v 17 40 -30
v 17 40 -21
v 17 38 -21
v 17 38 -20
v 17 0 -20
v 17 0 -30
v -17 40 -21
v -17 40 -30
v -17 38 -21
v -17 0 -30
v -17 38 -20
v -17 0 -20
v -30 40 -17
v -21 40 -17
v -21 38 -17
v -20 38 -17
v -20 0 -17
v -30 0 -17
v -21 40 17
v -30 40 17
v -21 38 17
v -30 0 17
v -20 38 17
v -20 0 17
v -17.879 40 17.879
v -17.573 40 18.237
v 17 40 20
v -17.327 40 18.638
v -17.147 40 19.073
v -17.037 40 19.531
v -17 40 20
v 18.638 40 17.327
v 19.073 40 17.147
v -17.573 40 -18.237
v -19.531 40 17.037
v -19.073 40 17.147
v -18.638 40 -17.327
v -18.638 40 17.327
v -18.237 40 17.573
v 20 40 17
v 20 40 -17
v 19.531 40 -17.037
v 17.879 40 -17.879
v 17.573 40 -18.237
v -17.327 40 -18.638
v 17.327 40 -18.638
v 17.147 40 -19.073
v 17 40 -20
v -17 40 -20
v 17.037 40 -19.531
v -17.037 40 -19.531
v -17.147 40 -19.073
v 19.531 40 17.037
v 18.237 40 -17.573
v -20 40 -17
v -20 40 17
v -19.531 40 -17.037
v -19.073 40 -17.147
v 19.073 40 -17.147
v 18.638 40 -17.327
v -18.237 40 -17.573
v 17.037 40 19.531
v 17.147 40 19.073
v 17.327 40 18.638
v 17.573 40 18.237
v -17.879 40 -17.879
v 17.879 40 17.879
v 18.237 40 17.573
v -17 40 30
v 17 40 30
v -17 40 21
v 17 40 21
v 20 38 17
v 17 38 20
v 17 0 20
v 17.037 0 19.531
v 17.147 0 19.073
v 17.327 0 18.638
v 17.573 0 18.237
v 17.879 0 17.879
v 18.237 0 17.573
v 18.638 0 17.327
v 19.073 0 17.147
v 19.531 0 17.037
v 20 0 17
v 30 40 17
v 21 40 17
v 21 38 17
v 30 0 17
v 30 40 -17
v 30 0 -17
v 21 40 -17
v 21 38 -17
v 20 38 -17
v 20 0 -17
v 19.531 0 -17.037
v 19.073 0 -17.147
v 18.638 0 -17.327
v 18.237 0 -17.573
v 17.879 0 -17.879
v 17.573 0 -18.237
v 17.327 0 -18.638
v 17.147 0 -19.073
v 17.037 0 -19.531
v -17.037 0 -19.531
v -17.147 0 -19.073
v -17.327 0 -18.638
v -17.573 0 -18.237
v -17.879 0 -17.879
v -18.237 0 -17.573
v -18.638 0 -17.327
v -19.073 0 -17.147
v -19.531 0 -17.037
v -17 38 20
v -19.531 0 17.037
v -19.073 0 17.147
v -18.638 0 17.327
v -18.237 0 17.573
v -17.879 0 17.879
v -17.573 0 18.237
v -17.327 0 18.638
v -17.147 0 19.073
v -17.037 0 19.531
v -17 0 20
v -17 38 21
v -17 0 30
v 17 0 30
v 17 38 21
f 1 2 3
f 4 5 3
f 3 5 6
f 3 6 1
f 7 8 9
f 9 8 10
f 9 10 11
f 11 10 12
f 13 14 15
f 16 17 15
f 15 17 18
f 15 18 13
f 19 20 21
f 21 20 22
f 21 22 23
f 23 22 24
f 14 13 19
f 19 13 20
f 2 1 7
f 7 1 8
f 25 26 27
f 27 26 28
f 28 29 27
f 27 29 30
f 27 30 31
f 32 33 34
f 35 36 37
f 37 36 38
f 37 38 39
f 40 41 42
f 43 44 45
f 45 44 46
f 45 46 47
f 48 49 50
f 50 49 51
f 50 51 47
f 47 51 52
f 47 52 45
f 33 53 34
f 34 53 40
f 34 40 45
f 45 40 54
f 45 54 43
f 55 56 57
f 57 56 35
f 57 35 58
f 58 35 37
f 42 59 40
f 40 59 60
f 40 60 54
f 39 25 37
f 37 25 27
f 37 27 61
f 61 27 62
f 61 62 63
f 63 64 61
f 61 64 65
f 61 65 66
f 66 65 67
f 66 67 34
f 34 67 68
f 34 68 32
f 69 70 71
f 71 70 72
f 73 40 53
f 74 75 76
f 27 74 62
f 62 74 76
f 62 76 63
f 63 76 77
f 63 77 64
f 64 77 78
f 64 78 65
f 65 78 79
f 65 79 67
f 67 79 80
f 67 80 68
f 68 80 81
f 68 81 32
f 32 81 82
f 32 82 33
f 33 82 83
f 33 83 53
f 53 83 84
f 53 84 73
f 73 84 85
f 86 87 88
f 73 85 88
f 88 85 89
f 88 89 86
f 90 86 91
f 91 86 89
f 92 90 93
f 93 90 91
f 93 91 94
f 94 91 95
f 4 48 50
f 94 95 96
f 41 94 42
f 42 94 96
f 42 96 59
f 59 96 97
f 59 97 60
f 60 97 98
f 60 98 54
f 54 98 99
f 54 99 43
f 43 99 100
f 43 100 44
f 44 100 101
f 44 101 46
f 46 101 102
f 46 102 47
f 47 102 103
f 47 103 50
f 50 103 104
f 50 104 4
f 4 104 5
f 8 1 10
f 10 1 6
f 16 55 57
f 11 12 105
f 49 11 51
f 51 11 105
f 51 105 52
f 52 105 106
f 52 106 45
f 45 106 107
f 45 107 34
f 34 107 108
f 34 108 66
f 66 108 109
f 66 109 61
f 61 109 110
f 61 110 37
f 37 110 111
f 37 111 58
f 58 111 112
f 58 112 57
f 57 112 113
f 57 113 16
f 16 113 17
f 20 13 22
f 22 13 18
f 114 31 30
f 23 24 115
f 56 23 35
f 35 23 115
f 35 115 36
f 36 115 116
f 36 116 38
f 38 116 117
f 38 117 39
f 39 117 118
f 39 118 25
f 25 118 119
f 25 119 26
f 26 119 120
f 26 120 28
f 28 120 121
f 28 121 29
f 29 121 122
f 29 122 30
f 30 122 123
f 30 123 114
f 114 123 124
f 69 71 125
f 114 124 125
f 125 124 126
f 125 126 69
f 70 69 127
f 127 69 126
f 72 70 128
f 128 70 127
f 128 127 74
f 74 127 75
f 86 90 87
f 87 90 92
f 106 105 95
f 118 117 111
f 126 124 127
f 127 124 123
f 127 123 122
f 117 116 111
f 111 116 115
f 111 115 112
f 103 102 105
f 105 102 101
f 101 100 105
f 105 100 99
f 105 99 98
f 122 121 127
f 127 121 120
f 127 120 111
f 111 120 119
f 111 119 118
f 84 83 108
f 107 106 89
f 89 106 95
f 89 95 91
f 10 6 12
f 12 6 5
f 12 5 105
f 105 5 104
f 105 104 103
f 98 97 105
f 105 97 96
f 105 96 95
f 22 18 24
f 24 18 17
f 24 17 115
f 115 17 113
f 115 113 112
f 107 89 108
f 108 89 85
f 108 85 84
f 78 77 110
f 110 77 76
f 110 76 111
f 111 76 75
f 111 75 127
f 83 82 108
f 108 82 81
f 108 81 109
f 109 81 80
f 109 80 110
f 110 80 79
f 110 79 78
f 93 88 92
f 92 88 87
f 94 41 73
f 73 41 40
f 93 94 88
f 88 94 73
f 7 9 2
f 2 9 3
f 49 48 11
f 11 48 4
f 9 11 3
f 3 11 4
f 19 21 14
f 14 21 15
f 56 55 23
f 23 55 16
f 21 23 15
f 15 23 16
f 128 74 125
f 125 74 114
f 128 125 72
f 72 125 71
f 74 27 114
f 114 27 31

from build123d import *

# Parameters (mm, degrees)
BOSS_EXTRUDE1_DEPTH = 40
SKETCH3_W           = 42
SKETCH3_H           = 42
SKETCH3_W_2         = 40
SKETCH3_H_2         = 40
CUT_EXTRUDE2_DEPTH  = 2


with BuildPart() as part:
    # Sketch1 → Boss-Extrude1 (new body)
    with BuildSketch(Plane(origin=(0, 0, 0), x_dir=(1, 0, 0), z_dir=(0, 1, 0))):
        with BuildLine():
            ThreePointArc((-17, 20), (-17.878679656, 17.878679656), (-20, 17))
            Line((-20, 17), (-30, 17))
            Line((-30, 17), (-30, -17))
            Line((-30, -17), (-20, -17))
            ThreePointArc((-20, -17), (-17.878679656, -17.878679656), (-17, -20))
            Line((-17, -20), (-17, -30))
            Line((-17, -30), (17, -30))
            Line((17, -30), (17, -20))
            ThreePointArc((17, -20), (17.878679656, -17.878679656), (20, -17))
            Line((20, -17), (30, -17))
            Line((30, -17), (30, 17))
            Line((30, 17), (20, 17))
            ThreePointArc((20, 17), (17.878679656, 17.878679656), (17, 20))
            Line((17, 20), (17, 30))
            Line((17, 30), (-17, 30))
            Line((-17, 30), (-17, 20))
        make_face()
    extrude(amount=BOSS_EXTRUDE1_DEPTH)

    # Sketch3 → Cut-Extrude2 (cut)
    with BuildSketch(Plane(origin=(0, 40, 0), x_dir=(1, 0, 0), z_dir=(0, 1, 0))):
        Rectangle(SKETCH3_W, SKETCH3_H)
        Rectangle(SKETCH3_W_2, SKETCH3_H_2, mode=Mode.SUBTRACT)
    extrude(amount=-CUT_EXTRUDE2_DEPTH, mode=Mode.SUBTRACT)


solid = part.part
